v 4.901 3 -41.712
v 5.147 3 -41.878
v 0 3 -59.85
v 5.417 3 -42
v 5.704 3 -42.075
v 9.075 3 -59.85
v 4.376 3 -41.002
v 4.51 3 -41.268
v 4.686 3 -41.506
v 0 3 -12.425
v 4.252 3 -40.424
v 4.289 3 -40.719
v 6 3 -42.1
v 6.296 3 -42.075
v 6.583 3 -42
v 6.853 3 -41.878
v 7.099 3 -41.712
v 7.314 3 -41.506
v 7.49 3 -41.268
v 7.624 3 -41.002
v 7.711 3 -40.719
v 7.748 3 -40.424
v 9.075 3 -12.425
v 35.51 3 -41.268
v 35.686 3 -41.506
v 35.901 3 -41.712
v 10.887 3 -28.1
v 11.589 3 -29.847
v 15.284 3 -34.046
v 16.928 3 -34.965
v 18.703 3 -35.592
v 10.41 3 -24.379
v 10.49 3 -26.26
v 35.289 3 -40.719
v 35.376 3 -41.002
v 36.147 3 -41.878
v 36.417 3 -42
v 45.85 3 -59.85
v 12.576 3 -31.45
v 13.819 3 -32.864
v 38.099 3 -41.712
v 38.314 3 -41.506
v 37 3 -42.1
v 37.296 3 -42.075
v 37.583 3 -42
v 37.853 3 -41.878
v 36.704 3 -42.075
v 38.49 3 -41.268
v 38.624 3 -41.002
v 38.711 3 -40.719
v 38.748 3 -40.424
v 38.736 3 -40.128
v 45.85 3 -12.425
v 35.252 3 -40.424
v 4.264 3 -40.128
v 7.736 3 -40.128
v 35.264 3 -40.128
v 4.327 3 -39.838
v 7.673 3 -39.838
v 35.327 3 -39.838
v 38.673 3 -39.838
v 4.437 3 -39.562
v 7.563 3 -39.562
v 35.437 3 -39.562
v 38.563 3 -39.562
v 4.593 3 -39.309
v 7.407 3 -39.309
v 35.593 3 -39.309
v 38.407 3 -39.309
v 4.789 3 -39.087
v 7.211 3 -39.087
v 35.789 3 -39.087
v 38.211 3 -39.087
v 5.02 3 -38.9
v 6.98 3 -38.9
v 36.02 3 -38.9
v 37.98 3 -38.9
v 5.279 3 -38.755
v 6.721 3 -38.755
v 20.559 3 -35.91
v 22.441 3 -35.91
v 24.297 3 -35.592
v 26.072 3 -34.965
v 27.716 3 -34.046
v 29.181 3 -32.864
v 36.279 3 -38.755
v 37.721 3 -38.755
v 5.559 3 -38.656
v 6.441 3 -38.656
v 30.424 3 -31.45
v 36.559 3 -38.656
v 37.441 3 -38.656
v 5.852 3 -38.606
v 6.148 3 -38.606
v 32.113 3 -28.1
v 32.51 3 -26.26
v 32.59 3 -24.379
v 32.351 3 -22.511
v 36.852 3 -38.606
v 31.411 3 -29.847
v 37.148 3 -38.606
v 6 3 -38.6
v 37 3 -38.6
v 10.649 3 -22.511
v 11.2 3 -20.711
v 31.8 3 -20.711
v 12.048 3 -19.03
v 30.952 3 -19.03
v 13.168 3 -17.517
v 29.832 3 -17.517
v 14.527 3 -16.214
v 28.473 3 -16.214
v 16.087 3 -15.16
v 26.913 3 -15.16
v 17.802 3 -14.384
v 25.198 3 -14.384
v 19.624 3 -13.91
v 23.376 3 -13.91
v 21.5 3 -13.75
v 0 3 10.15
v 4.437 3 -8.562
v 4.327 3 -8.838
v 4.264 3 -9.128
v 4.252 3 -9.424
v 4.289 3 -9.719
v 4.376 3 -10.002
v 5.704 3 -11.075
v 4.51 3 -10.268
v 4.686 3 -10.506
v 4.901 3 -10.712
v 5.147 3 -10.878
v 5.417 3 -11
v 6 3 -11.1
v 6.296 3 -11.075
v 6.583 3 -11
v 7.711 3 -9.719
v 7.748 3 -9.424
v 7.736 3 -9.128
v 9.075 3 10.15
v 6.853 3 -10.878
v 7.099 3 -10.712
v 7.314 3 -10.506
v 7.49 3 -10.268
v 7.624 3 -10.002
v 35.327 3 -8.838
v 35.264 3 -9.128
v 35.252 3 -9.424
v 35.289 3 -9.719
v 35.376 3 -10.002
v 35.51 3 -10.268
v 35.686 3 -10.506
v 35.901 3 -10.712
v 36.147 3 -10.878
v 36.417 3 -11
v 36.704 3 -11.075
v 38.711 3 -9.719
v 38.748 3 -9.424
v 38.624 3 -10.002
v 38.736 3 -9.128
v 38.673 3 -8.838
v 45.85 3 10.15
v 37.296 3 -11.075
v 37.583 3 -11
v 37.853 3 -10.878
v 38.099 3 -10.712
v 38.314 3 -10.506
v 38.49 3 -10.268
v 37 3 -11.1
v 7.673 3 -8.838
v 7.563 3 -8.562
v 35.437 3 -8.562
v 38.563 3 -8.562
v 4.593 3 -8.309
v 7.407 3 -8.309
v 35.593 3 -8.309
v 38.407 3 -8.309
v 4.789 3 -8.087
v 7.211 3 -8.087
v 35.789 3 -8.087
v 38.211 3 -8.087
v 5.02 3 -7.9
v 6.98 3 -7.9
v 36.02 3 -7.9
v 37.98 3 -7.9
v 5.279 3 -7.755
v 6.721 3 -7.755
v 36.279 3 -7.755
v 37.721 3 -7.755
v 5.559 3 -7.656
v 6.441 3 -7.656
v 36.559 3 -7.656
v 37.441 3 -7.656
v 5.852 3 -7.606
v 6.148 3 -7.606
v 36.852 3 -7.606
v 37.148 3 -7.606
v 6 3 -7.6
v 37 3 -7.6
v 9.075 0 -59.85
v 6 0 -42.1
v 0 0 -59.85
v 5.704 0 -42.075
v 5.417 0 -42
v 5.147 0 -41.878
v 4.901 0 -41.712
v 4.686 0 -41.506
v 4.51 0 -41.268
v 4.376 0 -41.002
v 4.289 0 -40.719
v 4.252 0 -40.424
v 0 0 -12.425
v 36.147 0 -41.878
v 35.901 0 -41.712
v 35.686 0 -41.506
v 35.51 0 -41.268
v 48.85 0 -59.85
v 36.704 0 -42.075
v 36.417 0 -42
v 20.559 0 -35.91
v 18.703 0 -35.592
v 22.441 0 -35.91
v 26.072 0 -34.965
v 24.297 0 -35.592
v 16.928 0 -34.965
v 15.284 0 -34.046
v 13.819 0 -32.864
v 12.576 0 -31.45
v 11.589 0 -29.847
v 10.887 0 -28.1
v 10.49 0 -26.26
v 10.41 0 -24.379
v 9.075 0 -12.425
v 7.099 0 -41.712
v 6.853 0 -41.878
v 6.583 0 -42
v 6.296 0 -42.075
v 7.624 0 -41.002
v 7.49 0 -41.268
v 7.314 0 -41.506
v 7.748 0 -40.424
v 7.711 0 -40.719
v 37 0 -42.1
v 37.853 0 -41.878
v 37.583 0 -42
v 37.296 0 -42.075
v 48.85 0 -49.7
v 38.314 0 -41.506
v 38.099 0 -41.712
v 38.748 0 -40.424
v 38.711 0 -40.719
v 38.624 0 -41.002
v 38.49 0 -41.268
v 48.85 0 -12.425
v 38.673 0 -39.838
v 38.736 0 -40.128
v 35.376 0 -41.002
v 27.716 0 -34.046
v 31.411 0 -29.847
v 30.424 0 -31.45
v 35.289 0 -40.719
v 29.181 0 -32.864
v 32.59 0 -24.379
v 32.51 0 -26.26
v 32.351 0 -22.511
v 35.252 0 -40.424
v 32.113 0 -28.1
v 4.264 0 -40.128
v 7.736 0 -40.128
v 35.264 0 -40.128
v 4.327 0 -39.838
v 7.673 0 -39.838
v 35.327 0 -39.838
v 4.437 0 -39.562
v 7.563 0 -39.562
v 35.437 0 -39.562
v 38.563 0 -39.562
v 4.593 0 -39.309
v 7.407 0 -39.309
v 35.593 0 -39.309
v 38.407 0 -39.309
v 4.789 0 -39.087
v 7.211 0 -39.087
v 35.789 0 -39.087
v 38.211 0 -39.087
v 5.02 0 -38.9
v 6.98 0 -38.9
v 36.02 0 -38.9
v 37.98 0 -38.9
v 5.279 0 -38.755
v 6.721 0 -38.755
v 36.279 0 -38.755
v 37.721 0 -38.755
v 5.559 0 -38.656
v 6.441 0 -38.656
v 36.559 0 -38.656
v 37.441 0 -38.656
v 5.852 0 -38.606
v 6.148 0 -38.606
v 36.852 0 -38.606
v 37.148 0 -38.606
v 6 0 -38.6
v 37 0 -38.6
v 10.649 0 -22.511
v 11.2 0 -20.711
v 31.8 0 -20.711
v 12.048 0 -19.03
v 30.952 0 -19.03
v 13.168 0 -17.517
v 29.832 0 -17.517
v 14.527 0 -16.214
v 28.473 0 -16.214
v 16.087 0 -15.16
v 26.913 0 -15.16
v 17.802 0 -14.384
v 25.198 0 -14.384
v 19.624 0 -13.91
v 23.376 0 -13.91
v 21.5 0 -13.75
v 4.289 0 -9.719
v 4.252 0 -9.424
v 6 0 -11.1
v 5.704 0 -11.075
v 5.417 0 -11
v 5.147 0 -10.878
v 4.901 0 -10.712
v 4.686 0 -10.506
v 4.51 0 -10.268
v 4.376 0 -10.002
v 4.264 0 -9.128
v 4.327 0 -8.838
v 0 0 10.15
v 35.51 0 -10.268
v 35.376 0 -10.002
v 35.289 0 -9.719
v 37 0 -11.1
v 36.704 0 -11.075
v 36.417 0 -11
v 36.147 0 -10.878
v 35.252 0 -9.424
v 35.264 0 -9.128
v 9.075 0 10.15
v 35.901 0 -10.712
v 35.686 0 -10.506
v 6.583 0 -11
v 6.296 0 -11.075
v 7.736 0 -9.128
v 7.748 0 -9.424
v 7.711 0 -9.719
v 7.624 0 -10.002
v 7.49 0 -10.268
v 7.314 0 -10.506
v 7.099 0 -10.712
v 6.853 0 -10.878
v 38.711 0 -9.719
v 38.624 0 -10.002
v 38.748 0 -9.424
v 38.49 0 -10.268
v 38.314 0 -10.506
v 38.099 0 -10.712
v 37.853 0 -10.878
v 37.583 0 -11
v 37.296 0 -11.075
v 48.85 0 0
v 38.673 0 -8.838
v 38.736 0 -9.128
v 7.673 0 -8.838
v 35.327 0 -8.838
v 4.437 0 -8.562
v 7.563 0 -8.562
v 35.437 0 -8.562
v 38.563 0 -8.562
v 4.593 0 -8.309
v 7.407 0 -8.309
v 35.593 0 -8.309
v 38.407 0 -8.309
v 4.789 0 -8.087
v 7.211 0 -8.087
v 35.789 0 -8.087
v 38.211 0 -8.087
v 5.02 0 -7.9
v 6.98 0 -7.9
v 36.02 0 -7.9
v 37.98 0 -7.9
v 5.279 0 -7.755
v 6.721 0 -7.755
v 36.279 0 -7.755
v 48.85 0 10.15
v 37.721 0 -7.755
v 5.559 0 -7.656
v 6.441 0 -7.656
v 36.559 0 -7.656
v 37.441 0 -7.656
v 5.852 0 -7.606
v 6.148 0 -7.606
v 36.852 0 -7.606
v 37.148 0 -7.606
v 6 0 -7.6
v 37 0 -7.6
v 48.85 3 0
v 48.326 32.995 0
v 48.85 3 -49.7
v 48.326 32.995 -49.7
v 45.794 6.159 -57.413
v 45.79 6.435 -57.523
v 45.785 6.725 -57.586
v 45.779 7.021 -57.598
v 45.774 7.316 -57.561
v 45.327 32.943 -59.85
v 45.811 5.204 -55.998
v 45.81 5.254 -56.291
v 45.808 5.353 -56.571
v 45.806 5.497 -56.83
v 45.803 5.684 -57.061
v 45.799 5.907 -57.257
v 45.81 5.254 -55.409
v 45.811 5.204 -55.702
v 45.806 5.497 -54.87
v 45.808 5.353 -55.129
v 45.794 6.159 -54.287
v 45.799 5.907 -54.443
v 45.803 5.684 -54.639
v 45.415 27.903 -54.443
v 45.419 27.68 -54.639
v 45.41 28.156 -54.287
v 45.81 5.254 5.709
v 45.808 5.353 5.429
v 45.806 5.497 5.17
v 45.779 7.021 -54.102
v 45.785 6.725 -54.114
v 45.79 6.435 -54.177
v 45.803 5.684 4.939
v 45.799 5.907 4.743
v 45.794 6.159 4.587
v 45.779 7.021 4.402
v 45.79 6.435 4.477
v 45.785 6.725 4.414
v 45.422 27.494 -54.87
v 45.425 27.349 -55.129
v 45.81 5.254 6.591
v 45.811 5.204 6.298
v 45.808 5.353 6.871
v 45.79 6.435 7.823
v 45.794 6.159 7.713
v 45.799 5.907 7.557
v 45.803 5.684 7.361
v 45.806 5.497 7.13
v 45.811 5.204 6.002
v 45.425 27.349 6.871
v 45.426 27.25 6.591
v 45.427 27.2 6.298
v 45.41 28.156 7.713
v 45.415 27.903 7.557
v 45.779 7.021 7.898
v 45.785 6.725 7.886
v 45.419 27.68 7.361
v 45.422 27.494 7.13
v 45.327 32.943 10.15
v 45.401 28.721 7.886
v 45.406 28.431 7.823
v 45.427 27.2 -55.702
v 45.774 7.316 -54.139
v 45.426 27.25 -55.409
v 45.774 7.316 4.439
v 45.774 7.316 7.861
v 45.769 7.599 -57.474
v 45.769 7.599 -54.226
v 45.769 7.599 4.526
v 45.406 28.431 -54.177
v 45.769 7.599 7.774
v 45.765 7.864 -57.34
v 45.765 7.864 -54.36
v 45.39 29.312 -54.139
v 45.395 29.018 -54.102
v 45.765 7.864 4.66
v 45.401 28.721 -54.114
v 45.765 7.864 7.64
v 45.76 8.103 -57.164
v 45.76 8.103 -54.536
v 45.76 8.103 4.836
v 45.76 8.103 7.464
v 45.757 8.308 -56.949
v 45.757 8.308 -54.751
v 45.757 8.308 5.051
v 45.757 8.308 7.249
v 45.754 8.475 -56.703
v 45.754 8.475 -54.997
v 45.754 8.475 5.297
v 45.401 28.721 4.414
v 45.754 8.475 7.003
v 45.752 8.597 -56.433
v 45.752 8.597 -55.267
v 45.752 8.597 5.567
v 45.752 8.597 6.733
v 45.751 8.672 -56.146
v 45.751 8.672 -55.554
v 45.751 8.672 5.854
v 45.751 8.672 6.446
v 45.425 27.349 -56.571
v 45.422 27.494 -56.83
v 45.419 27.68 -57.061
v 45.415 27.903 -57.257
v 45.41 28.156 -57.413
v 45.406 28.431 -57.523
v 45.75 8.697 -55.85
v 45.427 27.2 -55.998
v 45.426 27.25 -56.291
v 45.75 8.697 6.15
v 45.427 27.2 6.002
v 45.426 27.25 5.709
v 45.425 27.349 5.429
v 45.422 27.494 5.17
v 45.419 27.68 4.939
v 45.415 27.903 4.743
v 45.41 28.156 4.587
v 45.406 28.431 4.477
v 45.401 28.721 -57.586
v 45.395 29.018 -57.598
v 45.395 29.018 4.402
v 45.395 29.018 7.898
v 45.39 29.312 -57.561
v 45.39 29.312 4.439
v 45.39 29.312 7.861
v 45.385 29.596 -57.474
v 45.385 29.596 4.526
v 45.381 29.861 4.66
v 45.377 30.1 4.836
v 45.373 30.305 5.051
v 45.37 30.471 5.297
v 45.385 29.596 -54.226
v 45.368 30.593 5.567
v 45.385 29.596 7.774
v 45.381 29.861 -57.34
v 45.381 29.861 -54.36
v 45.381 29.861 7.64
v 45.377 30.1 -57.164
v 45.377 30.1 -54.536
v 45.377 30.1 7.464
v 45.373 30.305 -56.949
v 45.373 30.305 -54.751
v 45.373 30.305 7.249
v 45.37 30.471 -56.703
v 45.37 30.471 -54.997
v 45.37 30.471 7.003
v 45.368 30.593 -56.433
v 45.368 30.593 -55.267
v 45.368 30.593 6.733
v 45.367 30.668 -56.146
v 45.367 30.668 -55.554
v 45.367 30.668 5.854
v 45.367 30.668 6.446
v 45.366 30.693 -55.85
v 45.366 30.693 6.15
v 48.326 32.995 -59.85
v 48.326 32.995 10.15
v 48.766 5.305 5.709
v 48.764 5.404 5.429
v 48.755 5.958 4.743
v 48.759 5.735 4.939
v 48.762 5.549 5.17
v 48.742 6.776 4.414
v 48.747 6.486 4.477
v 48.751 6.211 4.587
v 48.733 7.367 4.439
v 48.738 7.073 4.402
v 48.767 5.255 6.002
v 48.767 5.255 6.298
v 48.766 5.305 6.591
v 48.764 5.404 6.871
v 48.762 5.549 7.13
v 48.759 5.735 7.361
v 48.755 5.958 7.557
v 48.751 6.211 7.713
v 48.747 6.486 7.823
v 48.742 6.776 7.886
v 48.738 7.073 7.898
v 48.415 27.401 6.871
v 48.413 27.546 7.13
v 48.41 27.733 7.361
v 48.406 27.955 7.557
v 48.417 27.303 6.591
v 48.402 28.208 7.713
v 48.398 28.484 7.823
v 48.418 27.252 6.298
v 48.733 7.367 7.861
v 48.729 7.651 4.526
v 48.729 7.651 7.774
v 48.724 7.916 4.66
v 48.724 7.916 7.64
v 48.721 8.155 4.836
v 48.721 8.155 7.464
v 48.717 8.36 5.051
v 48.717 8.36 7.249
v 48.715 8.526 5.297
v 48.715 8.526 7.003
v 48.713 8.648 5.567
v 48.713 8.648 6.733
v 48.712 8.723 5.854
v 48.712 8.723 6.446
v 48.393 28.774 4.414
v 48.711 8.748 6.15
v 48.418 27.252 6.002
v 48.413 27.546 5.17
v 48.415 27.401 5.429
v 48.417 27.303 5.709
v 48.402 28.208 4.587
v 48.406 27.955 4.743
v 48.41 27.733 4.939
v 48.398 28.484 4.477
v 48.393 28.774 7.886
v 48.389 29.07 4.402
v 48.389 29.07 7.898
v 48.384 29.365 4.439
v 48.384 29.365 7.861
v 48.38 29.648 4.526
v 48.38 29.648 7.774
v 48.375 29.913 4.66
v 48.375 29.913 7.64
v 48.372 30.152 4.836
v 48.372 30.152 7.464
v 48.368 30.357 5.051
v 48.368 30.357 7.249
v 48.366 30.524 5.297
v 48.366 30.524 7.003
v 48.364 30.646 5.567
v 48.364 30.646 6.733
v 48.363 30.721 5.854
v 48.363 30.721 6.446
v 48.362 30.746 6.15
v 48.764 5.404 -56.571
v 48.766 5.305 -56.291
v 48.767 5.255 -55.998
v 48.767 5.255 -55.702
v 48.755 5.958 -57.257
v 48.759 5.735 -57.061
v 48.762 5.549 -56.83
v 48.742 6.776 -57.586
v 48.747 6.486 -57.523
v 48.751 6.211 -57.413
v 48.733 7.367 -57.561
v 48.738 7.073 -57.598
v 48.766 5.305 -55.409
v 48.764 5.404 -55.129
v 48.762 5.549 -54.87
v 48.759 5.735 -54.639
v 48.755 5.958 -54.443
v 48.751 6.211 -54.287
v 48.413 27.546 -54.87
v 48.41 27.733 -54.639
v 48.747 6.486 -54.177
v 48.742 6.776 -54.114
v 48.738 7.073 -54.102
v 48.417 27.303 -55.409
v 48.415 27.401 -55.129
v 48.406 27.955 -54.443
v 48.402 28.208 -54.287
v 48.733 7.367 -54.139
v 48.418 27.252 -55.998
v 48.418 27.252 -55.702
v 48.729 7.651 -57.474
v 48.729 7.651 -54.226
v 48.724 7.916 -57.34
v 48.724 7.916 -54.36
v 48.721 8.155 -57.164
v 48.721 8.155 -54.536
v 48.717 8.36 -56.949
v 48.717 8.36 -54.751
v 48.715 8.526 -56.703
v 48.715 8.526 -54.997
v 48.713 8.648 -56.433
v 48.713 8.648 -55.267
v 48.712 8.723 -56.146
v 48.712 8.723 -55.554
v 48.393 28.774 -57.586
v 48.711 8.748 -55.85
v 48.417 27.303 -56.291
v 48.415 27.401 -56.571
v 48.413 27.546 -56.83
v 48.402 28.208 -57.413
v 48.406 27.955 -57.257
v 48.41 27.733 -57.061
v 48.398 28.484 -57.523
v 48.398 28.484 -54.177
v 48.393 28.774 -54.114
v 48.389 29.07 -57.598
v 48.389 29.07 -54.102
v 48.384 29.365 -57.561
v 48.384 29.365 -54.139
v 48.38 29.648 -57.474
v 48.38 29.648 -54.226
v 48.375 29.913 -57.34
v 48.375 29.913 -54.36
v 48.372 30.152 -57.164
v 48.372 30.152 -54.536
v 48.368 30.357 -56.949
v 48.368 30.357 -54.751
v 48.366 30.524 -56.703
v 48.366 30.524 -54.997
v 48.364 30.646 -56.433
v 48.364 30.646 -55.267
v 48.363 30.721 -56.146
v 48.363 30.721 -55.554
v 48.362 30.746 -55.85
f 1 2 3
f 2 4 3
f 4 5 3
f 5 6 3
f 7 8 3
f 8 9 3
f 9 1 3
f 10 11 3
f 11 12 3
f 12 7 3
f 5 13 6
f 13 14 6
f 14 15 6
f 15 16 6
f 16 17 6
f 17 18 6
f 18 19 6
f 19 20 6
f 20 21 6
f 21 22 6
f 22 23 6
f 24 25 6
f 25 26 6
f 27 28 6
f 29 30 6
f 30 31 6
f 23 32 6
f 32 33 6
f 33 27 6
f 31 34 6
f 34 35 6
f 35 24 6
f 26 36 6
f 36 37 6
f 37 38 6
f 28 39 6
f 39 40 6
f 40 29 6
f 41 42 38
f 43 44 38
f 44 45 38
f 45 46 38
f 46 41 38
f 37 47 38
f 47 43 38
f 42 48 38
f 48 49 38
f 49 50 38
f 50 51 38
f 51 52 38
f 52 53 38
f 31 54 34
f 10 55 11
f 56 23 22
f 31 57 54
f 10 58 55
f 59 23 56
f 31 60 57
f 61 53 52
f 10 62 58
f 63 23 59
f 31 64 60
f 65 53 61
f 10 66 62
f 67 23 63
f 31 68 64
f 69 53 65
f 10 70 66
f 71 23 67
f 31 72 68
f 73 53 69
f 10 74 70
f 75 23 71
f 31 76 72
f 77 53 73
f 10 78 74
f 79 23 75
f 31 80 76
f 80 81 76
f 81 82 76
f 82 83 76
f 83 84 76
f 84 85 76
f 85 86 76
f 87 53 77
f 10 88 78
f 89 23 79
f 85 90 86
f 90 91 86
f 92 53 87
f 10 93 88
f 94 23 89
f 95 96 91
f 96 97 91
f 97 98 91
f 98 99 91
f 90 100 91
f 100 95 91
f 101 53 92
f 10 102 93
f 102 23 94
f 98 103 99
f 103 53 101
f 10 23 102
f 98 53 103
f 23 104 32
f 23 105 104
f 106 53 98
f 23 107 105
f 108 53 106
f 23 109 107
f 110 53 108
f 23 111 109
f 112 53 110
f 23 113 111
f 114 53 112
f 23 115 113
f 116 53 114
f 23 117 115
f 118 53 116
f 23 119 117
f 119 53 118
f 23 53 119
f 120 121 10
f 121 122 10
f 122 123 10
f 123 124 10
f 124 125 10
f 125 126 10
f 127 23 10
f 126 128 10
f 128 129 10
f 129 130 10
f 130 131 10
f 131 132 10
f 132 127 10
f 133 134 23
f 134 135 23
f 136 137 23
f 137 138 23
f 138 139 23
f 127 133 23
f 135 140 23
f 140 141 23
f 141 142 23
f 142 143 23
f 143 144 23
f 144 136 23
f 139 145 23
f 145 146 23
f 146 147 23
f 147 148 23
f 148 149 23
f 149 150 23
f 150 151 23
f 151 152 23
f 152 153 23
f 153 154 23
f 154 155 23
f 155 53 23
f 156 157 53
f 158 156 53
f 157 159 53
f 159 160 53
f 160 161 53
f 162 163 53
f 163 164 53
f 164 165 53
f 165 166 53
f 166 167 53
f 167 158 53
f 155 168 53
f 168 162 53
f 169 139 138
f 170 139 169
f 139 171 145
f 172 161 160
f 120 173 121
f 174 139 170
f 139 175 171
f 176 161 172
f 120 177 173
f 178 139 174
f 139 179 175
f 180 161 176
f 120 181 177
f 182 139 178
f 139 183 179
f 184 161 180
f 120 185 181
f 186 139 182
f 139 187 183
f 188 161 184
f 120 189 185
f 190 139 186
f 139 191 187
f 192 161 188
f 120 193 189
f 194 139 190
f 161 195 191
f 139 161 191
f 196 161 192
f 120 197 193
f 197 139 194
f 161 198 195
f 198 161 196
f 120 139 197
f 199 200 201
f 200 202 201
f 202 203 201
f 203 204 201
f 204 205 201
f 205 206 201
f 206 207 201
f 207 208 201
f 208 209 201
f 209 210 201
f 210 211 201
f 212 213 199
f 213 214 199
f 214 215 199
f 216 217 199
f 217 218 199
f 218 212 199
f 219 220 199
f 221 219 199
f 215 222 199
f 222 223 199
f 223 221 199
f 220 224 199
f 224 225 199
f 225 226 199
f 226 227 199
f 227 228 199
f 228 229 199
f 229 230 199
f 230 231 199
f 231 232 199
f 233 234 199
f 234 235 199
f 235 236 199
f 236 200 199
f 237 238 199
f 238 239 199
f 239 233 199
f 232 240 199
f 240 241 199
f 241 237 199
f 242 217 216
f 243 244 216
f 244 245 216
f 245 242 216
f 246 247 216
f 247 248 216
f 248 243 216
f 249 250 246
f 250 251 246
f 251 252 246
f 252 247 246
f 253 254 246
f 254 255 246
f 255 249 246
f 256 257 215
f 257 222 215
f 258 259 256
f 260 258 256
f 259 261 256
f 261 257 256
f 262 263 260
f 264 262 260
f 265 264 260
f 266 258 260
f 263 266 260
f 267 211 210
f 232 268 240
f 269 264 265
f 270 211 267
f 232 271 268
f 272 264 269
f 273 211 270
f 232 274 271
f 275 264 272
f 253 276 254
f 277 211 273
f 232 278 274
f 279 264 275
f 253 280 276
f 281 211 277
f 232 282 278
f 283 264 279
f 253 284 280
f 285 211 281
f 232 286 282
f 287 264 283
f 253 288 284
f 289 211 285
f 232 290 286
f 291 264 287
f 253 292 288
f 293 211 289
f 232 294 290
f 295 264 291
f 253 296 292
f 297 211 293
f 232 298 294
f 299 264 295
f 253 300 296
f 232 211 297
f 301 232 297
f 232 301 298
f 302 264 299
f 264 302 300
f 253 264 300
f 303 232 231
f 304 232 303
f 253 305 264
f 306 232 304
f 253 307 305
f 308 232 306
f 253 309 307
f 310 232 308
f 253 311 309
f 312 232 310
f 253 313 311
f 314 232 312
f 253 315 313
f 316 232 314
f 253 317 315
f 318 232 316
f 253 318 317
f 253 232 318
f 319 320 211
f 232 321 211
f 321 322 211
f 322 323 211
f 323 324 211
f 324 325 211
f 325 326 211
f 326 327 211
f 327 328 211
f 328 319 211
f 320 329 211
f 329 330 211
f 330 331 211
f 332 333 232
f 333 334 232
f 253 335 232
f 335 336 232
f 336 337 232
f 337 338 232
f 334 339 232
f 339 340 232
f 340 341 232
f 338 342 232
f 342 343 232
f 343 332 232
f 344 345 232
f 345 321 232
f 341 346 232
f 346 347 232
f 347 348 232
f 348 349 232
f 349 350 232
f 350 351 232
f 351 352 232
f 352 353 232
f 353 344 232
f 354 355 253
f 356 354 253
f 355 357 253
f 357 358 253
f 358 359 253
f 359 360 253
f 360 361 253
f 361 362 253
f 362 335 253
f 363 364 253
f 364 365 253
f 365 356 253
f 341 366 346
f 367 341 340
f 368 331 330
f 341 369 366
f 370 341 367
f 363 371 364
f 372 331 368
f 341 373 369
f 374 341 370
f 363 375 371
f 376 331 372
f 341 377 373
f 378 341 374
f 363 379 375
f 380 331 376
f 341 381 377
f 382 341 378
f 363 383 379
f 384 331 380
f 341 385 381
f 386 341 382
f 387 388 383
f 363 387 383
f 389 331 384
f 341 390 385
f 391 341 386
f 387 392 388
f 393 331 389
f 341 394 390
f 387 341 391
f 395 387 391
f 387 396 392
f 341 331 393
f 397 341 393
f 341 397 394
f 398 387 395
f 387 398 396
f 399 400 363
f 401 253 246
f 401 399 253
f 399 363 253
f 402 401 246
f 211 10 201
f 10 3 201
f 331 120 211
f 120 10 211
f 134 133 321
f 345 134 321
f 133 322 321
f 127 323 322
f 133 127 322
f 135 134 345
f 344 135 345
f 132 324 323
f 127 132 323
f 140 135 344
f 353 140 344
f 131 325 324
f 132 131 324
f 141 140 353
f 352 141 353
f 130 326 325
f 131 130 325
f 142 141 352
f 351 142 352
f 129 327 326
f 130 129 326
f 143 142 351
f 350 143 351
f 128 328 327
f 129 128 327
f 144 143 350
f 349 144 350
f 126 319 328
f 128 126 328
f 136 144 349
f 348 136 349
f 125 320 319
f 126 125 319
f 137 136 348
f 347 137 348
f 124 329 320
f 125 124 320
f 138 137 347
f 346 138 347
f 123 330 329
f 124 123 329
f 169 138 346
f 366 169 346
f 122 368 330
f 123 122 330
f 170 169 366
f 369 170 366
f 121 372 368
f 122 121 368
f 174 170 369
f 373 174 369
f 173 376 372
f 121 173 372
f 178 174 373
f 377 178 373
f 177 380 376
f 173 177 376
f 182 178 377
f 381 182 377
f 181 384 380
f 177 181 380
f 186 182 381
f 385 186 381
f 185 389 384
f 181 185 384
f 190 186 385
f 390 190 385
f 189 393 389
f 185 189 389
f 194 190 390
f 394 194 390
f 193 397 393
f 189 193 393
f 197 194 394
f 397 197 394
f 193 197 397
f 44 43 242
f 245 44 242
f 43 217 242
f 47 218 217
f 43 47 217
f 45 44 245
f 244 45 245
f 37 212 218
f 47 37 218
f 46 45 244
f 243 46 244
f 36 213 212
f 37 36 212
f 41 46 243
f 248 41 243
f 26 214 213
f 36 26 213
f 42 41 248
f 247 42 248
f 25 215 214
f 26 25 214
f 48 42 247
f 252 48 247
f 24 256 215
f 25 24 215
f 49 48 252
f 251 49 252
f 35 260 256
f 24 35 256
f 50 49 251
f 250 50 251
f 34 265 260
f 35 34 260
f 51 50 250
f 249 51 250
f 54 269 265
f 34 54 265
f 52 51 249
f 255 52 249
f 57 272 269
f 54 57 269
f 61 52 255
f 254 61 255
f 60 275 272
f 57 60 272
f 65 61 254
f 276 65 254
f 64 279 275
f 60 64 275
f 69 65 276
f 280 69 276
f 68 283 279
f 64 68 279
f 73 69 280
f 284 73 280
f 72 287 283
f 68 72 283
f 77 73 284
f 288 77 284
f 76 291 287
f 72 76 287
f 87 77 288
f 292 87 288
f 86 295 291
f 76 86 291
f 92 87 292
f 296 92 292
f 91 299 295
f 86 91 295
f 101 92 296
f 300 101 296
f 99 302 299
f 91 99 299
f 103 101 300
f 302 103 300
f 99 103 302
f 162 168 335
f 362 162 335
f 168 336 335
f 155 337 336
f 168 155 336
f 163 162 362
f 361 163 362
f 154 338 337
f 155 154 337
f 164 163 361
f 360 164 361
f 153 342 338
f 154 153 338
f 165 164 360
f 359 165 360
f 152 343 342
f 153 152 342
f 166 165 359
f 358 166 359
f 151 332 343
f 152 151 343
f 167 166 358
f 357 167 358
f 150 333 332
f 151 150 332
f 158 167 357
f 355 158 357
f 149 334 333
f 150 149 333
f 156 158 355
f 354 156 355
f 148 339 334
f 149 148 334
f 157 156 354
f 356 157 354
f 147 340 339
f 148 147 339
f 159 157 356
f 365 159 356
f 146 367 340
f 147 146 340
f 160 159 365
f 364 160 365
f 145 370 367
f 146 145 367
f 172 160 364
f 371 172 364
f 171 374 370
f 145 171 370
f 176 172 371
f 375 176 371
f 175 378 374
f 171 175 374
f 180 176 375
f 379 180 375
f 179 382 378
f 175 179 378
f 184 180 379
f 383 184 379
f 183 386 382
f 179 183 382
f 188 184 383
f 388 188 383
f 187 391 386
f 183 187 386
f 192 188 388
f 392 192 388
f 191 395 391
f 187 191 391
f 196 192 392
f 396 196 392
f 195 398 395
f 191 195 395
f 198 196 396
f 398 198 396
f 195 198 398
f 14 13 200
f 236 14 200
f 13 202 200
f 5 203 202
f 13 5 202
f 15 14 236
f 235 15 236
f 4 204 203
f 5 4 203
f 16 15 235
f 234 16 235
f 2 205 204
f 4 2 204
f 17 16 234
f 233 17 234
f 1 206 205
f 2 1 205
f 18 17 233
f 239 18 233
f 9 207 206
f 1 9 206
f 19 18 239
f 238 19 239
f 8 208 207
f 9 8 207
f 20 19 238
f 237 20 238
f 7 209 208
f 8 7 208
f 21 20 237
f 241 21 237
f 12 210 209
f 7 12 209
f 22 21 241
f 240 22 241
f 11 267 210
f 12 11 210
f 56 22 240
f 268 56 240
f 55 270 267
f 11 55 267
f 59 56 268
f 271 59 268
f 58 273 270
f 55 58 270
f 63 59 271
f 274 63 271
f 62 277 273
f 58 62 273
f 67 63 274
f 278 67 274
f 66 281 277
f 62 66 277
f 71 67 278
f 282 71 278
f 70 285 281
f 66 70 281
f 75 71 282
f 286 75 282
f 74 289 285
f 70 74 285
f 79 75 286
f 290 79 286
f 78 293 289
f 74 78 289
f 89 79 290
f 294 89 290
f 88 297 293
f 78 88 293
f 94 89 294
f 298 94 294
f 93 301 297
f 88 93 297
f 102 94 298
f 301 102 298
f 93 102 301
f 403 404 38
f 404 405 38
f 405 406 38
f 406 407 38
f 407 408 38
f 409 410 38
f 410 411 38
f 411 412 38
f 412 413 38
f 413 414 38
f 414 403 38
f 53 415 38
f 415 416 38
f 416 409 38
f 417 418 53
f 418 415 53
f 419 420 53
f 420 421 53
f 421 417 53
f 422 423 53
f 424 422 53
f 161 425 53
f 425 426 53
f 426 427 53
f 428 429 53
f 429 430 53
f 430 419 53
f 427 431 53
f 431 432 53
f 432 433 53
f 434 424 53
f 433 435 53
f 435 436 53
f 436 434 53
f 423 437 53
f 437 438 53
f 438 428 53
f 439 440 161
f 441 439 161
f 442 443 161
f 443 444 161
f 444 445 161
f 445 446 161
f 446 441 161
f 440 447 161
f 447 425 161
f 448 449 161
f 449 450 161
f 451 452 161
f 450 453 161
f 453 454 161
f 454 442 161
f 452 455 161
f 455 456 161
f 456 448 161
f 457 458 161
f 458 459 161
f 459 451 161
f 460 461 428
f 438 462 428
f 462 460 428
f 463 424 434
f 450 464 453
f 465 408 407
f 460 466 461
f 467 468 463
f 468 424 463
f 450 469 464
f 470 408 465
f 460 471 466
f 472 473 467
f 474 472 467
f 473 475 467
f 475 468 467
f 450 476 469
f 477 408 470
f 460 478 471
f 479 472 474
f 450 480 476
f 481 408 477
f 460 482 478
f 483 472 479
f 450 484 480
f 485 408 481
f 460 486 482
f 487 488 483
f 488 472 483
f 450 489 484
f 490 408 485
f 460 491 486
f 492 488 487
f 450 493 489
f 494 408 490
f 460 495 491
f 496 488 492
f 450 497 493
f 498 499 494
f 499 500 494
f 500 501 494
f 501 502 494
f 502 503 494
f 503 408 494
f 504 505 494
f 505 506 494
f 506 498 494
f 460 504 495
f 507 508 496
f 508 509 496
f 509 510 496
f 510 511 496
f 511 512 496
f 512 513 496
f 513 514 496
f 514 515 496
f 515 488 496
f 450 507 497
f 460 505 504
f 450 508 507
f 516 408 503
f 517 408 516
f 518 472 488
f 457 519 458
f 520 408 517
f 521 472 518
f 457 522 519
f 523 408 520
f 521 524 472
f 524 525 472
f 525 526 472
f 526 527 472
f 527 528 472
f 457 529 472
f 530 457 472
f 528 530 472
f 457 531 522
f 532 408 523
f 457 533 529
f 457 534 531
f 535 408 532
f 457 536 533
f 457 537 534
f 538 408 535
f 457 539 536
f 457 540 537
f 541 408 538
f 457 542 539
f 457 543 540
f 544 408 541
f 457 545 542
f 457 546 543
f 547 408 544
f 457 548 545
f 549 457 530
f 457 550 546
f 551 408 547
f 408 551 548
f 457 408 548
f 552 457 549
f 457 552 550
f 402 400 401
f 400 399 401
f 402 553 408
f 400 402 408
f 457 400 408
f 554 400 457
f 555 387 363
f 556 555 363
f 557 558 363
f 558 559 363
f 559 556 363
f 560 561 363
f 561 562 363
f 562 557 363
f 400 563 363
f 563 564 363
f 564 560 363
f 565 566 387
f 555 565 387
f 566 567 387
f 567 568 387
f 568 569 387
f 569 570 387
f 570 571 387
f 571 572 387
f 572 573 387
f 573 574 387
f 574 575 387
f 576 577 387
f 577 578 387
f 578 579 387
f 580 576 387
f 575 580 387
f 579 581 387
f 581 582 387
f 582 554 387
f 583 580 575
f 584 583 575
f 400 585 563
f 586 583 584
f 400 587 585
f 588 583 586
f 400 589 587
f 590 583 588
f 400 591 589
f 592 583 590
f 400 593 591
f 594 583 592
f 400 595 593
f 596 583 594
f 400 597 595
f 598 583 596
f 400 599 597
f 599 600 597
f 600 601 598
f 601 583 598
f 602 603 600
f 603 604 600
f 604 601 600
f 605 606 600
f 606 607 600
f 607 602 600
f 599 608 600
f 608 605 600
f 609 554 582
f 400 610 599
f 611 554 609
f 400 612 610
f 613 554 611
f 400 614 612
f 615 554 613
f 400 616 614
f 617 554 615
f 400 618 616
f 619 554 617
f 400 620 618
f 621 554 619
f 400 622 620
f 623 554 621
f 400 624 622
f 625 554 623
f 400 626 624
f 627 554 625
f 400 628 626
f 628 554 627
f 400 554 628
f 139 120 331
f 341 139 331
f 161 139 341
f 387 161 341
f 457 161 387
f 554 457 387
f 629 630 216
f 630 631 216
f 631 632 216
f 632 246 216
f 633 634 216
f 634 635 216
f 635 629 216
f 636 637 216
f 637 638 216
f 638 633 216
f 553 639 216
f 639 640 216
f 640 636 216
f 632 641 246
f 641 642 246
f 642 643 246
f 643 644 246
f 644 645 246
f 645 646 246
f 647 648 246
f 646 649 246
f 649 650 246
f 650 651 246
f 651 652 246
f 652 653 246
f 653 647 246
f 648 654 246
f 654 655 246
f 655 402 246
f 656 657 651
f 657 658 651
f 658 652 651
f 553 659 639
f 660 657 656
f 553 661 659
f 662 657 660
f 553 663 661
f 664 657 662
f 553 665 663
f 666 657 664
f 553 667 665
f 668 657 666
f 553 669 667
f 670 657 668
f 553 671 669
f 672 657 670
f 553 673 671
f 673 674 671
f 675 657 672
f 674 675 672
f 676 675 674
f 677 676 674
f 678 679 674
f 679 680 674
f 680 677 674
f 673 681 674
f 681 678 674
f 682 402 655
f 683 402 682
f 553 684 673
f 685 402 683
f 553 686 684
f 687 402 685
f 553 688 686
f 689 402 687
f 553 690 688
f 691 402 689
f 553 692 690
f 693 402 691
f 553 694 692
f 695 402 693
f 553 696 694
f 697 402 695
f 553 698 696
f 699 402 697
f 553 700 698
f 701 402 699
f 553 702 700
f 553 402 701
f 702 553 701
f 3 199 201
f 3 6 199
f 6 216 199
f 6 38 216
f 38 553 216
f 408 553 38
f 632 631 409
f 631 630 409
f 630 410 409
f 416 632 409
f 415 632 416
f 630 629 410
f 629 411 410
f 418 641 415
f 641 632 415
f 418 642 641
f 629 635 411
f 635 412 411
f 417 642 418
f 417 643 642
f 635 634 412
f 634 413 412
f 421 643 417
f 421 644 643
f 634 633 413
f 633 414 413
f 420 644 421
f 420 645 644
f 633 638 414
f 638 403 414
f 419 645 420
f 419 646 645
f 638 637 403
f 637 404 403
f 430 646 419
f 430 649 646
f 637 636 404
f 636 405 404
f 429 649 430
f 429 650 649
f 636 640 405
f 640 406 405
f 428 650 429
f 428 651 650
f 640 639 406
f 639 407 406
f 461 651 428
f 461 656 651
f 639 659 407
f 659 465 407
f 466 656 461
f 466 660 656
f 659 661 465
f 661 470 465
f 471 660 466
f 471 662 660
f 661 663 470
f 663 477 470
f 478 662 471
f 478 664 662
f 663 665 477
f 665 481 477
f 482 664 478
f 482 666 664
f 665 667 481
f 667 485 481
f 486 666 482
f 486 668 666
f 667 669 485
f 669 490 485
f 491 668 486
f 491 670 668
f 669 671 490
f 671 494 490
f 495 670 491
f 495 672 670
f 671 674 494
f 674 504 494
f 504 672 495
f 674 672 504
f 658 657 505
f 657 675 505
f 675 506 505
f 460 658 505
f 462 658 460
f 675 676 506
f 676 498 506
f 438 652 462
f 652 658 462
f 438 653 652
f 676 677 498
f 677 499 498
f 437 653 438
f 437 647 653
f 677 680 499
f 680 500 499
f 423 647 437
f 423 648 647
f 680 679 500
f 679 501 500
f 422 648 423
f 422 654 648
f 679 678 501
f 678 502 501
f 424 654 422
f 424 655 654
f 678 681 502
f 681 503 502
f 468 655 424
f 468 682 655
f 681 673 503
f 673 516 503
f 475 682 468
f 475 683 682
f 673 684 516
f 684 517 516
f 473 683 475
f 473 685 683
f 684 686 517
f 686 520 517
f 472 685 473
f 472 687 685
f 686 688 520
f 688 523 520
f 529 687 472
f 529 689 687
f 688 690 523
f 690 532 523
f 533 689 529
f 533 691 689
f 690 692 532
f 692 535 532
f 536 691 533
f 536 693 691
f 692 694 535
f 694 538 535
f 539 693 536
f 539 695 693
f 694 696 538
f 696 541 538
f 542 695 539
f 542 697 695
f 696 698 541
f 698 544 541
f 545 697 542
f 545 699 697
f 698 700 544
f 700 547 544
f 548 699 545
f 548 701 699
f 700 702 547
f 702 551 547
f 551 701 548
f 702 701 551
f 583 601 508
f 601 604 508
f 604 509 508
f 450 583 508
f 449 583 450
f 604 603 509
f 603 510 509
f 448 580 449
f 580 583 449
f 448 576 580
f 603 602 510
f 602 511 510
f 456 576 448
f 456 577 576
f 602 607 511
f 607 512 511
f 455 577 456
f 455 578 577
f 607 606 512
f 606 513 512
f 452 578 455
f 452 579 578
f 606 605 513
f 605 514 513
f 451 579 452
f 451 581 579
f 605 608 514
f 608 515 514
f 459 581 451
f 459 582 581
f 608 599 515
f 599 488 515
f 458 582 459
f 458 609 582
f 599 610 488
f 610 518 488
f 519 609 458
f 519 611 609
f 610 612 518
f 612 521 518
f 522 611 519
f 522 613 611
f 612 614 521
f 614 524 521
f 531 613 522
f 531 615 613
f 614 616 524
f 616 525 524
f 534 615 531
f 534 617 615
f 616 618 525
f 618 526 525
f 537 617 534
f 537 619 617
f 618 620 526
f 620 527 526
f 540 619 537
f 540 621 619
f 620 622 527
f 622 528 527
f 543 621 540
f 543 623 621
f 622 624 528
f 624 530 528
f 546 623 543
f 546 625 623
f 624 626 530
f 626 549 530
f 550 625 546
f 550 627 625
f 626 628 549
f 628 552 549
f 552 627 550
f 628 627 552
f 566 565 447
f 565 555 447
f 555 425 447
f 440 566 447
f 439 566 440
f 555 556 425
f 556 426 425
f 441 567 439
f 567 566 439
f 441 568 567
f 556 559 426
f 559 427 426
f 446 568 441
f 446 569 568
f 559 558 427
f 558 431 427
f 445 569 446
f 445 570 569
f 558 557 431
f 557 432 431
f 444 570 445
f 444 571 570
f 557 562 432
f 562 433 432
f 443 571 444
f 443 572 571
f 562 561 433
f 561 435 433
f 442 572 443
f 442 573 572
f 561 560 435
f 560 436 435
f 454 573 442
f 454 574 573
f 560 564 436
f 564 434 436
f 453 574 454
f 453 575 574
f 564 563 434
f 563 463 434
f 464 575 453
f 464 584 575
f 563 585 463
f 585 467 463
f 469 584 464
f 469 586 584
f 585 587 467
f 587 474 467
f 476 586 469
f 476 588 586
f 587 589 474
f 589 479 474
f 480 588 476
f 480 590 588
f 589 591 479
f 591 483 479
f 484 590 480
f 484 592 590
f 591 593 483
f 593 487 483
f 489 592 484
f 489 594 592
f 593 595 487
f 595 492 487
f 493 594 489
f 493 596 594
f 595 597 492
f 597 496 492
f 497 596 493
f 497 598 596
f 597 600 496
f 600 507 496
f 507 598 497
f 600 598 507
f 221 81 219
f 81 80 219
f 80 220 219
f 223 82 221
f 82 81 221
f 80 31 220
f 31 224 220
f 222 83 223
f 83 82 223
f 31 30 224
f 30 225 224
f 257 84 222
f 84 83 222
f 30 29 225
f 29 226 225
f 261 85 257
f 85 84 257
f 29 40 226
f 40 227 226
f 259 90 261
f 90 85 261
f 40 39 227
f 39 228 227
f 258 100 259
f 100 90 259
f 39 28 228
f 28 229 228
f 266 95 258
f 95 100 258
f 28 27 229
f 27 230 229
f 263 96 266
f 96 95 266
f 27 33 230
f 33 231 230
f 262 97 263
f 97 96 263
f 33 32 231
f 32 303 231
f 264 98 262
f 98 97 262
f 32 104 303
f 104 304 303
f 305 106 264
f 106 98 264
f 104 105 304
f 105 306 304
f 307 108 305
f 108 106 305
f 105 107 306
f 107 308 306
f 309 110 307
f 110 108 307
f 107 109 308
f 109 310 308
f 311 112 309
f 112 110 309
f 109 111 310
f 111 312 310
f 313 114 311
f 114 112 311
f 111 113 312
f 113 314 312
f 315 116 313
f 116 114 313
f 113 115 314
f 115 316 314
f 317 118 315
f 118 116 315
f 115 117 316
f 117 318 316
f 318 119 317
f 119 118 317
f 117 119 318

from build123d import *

# Parameters (mm, degrees)
ESBO_O1_R                = 1.75
RESSALTO_EXTRUS_O1_DEPTH = 3
CORTE_EXTRUS_O1_DEPTH    = 70.752508915
ESBO_O6_W                = 3
ESBO_O6_H                = 49.7
RESSALTO_EXTRUS_O2_DEPTH = 30
RESSALTO_EXTRUS_O5_DEPTH = 10.15
RESSALTO_EXTRUS_O6_DEPTH = 10.15
ESBO_O13_R               = 1.75
CORTE_EXTRUS_O2_DEPTH    = 84.696604677
ESBO_O14_R               = 11.1
CORTE_EXTRUS_O3_DEPTH    = 83.873825012


with BuildPart() as part:
    # Esboço1 → Ressalto-extrusão1 (new body)
    with BuildSketch(Plane(origin=(0, 0, 0), x_dir=(1, 0, 0), z_dir=(0, 1, 0))):
        Polygon((0, 0), (0, 49.7), (42, 49.7), (44.85, 49.7), (45.85, 49.7), (48.85, 49.7), (48.85, 0), (44.85, 0), (42, 0), align=None)
        with Locations(Location((6, 9.35, 0), (0, 0, 270))):
            Circle(ESBO_O1_R, mode=Mode.SUBTRACT)
        with Locations(Location((37, 40.35, 0), (0, 0, 270))):
            Circle(ESBO_O1_R, mode=Mode.SUBTRACT)
        with Locations(Location((37, 9.35, 0), (0, 0, 270))):
            Circle(ESBO_O1_R, mode=Mode.SUBTRACT)
        with Locations(Location((6, 40.35, 0), (0, 0, 270))):
            Circle(ESBO_O1_R, mode=Mode.SUBTRACT)
    extrude(amount=RESSALTO_EXTRUS_O1_DEPTH)

    # Esboço4 → Corte-extrusão1 (cut, through all)
    with BuildSketch(Plane.XY):
        Polygon((48.85, 3), (45.850456915, 2.947642781), (45.824605163, 4.428688653), (48.712091154, 4.253252959), (49.11238384, 3.101191082), align=None)
    extrude(amount=-CORTE_EXTRUS_O1_DEPTH, mode=Mode.SUBTRACT)

    # Esboço6 → Ressalto-extrusão2 (add)
    with BuildSketch(Plane(origin=(-0.037470195, 2.146666034, 0), x_dir=(0.9998476951563913, 0.01745240643728361, 0), z_dir=(-0.01745240643728361, 0.9998476951563913, 0))):
        with Locations((47.394917128, 24.85)):
            Rectangle(ESBO_O6_W, ESBO_O6_H)
    extrude(amount=RESSALTO_EXTRUS_O2_DEPTH)

    # Esboço9 → Ressalto-extrusão5 (add)
    with BuildSketch(Plane.XY):
        Polygon((48.326427807, 32.995430855), (48.85, 0), (0, 0), (0, 3), (45.849543016, 3), (45.326884721, 32.943073635), align=None)
    extrude(amount=RESSALTO_EXTRUS_O5_DEPTH)

    # Esboço12 → Ressalto-extrusão6 (add)
    with BuildSketch(Plane(origin=(0, 0, -49.7), x_dir=(-1, 0, 0), z_dir=(0, 0, -1))):
        Polygon((0, 0), (-48.85, 0), (-48.326427807, 32.995430855), (-45.326884721, 32.943073635), (-45.849543016, 3), (0, 3), align=None)
    extrude(amount=RESSALTO_EXTRUS_O6_DEPTH)

    # Esboço13 → Corte-extrusão2 (cut, through all)
    with BuildSketch(Plane(origin=(48.887470195, 0.853333966, 0), x_dir=(0, 0, -1), z_dir=(0.9998476951563913, 0.01745240643728361, 0))):
        with Locations(Location((-6.15, 28.146993031, 0), (0, 0, 90))):
            Circle(ESBO_O13_R)
        with Locations(Location((-6.15, 6.146993031, 0), (0, 0, 90))):
            Circle(ESBO_O13_R)
        with Locations(Location((55.85, 28.146993031, 0), (0, 0, 90))):
            Circle(ESBO_O13_R)
        with Locations(Location((55.85, 6.146993031, 0), (0, 0, 90))):
            Circle(ESBO_O13_R)
    extrude(amount=-CORTE_EXTRUS_O2_DEPTH, mode=Mode.SUBTRACT)

    # Esboço14 → Corte-extrusão3 (cut, through all)
    with BuildSketch(Plane(origin=(0, 3, 0), x_dir=(1, 0, 0), z_dir=(0, 1, 0))):
        with Locations(Location((21.5, 24.85, 0), (0, 0, 270))):
            Circle(ESBO_O14_R)
    extrude(amount=-CORTE_EXTRUS_O3_DEPTH, mode=Mode.SUBTRACT)


solid = part.part
